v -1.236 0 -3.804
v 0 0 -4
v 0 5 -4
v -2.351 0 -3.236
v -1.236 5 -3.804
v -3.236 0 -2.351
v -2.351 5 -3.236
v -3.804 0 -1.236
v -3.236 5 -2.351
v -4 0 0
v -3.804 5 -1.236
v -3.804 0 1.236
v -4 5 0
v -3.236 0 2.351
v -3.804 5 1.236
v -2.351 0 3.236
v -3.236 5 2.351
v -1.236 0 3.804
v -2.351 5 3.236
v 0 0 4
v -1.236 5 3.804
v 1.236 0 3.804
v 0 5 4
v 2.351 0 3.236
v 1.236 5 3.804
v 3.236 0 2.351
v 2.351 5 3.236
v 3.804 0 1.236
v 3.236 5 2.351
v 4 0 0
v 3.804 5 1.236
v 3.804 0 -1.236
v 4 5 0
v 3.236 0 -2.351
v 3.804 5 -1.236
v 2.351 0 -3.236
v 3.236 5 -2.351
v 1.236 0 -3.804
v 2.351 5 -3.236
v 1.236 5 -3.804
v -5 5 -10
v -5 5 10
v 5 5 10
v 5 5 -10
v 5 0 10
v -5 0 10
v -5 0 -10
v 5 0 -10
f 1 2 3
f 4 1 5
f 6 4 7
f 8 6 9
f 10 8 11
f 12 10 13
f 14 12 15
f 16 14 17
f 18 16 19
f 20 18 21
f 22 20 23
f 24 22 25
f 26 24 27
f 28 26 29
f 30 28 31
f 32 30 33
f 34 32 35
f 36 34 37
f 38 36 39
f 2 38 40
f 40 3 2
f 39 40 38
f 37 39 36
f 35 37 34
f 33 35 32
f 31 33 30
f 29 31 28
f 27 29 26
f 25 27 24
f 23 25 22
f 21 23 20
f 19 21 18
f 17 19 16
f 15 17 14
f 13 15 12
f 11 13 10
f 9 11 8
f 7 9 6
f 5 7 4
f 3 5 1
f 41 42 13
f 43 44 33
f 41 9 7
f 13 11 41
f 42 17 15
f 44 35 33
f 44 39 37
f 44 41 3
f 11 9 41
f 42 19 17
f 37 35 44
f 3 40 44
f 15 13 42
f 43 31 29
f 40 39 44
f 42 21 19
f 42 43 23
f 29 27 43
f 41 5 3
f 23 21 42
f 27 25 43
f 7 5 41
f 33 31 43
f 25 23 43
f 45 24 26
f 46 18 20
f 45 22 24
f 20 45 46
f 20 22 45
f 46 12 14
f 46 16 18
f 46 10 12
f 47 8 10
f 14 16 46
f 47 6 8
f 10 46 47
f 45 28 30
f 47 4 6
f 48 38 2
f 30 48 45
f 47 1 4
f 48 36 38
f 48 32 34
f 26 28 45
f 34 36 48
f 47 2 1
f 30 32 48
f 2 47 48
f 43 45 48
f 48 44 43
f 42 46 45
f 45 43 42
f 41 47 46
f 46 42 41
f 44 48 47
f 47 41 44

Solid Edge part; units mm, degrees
sketch "Sketch1" plane through (0, 0, 0) normal (0, -1, 0) x (1, 0, 0)
  circle A0 centre (0, 0) radius 4
  line L0 (5, 10) -> (-5, 10)
  line L1 (-5, 10) -> (-5, -10)
  line L2 (-5, -10) -> (5, -10)
  line L3 (5, -10) -> (5, 10)
extrude "Protrusion1" add sketch "Sketch1" against normal blind 5
